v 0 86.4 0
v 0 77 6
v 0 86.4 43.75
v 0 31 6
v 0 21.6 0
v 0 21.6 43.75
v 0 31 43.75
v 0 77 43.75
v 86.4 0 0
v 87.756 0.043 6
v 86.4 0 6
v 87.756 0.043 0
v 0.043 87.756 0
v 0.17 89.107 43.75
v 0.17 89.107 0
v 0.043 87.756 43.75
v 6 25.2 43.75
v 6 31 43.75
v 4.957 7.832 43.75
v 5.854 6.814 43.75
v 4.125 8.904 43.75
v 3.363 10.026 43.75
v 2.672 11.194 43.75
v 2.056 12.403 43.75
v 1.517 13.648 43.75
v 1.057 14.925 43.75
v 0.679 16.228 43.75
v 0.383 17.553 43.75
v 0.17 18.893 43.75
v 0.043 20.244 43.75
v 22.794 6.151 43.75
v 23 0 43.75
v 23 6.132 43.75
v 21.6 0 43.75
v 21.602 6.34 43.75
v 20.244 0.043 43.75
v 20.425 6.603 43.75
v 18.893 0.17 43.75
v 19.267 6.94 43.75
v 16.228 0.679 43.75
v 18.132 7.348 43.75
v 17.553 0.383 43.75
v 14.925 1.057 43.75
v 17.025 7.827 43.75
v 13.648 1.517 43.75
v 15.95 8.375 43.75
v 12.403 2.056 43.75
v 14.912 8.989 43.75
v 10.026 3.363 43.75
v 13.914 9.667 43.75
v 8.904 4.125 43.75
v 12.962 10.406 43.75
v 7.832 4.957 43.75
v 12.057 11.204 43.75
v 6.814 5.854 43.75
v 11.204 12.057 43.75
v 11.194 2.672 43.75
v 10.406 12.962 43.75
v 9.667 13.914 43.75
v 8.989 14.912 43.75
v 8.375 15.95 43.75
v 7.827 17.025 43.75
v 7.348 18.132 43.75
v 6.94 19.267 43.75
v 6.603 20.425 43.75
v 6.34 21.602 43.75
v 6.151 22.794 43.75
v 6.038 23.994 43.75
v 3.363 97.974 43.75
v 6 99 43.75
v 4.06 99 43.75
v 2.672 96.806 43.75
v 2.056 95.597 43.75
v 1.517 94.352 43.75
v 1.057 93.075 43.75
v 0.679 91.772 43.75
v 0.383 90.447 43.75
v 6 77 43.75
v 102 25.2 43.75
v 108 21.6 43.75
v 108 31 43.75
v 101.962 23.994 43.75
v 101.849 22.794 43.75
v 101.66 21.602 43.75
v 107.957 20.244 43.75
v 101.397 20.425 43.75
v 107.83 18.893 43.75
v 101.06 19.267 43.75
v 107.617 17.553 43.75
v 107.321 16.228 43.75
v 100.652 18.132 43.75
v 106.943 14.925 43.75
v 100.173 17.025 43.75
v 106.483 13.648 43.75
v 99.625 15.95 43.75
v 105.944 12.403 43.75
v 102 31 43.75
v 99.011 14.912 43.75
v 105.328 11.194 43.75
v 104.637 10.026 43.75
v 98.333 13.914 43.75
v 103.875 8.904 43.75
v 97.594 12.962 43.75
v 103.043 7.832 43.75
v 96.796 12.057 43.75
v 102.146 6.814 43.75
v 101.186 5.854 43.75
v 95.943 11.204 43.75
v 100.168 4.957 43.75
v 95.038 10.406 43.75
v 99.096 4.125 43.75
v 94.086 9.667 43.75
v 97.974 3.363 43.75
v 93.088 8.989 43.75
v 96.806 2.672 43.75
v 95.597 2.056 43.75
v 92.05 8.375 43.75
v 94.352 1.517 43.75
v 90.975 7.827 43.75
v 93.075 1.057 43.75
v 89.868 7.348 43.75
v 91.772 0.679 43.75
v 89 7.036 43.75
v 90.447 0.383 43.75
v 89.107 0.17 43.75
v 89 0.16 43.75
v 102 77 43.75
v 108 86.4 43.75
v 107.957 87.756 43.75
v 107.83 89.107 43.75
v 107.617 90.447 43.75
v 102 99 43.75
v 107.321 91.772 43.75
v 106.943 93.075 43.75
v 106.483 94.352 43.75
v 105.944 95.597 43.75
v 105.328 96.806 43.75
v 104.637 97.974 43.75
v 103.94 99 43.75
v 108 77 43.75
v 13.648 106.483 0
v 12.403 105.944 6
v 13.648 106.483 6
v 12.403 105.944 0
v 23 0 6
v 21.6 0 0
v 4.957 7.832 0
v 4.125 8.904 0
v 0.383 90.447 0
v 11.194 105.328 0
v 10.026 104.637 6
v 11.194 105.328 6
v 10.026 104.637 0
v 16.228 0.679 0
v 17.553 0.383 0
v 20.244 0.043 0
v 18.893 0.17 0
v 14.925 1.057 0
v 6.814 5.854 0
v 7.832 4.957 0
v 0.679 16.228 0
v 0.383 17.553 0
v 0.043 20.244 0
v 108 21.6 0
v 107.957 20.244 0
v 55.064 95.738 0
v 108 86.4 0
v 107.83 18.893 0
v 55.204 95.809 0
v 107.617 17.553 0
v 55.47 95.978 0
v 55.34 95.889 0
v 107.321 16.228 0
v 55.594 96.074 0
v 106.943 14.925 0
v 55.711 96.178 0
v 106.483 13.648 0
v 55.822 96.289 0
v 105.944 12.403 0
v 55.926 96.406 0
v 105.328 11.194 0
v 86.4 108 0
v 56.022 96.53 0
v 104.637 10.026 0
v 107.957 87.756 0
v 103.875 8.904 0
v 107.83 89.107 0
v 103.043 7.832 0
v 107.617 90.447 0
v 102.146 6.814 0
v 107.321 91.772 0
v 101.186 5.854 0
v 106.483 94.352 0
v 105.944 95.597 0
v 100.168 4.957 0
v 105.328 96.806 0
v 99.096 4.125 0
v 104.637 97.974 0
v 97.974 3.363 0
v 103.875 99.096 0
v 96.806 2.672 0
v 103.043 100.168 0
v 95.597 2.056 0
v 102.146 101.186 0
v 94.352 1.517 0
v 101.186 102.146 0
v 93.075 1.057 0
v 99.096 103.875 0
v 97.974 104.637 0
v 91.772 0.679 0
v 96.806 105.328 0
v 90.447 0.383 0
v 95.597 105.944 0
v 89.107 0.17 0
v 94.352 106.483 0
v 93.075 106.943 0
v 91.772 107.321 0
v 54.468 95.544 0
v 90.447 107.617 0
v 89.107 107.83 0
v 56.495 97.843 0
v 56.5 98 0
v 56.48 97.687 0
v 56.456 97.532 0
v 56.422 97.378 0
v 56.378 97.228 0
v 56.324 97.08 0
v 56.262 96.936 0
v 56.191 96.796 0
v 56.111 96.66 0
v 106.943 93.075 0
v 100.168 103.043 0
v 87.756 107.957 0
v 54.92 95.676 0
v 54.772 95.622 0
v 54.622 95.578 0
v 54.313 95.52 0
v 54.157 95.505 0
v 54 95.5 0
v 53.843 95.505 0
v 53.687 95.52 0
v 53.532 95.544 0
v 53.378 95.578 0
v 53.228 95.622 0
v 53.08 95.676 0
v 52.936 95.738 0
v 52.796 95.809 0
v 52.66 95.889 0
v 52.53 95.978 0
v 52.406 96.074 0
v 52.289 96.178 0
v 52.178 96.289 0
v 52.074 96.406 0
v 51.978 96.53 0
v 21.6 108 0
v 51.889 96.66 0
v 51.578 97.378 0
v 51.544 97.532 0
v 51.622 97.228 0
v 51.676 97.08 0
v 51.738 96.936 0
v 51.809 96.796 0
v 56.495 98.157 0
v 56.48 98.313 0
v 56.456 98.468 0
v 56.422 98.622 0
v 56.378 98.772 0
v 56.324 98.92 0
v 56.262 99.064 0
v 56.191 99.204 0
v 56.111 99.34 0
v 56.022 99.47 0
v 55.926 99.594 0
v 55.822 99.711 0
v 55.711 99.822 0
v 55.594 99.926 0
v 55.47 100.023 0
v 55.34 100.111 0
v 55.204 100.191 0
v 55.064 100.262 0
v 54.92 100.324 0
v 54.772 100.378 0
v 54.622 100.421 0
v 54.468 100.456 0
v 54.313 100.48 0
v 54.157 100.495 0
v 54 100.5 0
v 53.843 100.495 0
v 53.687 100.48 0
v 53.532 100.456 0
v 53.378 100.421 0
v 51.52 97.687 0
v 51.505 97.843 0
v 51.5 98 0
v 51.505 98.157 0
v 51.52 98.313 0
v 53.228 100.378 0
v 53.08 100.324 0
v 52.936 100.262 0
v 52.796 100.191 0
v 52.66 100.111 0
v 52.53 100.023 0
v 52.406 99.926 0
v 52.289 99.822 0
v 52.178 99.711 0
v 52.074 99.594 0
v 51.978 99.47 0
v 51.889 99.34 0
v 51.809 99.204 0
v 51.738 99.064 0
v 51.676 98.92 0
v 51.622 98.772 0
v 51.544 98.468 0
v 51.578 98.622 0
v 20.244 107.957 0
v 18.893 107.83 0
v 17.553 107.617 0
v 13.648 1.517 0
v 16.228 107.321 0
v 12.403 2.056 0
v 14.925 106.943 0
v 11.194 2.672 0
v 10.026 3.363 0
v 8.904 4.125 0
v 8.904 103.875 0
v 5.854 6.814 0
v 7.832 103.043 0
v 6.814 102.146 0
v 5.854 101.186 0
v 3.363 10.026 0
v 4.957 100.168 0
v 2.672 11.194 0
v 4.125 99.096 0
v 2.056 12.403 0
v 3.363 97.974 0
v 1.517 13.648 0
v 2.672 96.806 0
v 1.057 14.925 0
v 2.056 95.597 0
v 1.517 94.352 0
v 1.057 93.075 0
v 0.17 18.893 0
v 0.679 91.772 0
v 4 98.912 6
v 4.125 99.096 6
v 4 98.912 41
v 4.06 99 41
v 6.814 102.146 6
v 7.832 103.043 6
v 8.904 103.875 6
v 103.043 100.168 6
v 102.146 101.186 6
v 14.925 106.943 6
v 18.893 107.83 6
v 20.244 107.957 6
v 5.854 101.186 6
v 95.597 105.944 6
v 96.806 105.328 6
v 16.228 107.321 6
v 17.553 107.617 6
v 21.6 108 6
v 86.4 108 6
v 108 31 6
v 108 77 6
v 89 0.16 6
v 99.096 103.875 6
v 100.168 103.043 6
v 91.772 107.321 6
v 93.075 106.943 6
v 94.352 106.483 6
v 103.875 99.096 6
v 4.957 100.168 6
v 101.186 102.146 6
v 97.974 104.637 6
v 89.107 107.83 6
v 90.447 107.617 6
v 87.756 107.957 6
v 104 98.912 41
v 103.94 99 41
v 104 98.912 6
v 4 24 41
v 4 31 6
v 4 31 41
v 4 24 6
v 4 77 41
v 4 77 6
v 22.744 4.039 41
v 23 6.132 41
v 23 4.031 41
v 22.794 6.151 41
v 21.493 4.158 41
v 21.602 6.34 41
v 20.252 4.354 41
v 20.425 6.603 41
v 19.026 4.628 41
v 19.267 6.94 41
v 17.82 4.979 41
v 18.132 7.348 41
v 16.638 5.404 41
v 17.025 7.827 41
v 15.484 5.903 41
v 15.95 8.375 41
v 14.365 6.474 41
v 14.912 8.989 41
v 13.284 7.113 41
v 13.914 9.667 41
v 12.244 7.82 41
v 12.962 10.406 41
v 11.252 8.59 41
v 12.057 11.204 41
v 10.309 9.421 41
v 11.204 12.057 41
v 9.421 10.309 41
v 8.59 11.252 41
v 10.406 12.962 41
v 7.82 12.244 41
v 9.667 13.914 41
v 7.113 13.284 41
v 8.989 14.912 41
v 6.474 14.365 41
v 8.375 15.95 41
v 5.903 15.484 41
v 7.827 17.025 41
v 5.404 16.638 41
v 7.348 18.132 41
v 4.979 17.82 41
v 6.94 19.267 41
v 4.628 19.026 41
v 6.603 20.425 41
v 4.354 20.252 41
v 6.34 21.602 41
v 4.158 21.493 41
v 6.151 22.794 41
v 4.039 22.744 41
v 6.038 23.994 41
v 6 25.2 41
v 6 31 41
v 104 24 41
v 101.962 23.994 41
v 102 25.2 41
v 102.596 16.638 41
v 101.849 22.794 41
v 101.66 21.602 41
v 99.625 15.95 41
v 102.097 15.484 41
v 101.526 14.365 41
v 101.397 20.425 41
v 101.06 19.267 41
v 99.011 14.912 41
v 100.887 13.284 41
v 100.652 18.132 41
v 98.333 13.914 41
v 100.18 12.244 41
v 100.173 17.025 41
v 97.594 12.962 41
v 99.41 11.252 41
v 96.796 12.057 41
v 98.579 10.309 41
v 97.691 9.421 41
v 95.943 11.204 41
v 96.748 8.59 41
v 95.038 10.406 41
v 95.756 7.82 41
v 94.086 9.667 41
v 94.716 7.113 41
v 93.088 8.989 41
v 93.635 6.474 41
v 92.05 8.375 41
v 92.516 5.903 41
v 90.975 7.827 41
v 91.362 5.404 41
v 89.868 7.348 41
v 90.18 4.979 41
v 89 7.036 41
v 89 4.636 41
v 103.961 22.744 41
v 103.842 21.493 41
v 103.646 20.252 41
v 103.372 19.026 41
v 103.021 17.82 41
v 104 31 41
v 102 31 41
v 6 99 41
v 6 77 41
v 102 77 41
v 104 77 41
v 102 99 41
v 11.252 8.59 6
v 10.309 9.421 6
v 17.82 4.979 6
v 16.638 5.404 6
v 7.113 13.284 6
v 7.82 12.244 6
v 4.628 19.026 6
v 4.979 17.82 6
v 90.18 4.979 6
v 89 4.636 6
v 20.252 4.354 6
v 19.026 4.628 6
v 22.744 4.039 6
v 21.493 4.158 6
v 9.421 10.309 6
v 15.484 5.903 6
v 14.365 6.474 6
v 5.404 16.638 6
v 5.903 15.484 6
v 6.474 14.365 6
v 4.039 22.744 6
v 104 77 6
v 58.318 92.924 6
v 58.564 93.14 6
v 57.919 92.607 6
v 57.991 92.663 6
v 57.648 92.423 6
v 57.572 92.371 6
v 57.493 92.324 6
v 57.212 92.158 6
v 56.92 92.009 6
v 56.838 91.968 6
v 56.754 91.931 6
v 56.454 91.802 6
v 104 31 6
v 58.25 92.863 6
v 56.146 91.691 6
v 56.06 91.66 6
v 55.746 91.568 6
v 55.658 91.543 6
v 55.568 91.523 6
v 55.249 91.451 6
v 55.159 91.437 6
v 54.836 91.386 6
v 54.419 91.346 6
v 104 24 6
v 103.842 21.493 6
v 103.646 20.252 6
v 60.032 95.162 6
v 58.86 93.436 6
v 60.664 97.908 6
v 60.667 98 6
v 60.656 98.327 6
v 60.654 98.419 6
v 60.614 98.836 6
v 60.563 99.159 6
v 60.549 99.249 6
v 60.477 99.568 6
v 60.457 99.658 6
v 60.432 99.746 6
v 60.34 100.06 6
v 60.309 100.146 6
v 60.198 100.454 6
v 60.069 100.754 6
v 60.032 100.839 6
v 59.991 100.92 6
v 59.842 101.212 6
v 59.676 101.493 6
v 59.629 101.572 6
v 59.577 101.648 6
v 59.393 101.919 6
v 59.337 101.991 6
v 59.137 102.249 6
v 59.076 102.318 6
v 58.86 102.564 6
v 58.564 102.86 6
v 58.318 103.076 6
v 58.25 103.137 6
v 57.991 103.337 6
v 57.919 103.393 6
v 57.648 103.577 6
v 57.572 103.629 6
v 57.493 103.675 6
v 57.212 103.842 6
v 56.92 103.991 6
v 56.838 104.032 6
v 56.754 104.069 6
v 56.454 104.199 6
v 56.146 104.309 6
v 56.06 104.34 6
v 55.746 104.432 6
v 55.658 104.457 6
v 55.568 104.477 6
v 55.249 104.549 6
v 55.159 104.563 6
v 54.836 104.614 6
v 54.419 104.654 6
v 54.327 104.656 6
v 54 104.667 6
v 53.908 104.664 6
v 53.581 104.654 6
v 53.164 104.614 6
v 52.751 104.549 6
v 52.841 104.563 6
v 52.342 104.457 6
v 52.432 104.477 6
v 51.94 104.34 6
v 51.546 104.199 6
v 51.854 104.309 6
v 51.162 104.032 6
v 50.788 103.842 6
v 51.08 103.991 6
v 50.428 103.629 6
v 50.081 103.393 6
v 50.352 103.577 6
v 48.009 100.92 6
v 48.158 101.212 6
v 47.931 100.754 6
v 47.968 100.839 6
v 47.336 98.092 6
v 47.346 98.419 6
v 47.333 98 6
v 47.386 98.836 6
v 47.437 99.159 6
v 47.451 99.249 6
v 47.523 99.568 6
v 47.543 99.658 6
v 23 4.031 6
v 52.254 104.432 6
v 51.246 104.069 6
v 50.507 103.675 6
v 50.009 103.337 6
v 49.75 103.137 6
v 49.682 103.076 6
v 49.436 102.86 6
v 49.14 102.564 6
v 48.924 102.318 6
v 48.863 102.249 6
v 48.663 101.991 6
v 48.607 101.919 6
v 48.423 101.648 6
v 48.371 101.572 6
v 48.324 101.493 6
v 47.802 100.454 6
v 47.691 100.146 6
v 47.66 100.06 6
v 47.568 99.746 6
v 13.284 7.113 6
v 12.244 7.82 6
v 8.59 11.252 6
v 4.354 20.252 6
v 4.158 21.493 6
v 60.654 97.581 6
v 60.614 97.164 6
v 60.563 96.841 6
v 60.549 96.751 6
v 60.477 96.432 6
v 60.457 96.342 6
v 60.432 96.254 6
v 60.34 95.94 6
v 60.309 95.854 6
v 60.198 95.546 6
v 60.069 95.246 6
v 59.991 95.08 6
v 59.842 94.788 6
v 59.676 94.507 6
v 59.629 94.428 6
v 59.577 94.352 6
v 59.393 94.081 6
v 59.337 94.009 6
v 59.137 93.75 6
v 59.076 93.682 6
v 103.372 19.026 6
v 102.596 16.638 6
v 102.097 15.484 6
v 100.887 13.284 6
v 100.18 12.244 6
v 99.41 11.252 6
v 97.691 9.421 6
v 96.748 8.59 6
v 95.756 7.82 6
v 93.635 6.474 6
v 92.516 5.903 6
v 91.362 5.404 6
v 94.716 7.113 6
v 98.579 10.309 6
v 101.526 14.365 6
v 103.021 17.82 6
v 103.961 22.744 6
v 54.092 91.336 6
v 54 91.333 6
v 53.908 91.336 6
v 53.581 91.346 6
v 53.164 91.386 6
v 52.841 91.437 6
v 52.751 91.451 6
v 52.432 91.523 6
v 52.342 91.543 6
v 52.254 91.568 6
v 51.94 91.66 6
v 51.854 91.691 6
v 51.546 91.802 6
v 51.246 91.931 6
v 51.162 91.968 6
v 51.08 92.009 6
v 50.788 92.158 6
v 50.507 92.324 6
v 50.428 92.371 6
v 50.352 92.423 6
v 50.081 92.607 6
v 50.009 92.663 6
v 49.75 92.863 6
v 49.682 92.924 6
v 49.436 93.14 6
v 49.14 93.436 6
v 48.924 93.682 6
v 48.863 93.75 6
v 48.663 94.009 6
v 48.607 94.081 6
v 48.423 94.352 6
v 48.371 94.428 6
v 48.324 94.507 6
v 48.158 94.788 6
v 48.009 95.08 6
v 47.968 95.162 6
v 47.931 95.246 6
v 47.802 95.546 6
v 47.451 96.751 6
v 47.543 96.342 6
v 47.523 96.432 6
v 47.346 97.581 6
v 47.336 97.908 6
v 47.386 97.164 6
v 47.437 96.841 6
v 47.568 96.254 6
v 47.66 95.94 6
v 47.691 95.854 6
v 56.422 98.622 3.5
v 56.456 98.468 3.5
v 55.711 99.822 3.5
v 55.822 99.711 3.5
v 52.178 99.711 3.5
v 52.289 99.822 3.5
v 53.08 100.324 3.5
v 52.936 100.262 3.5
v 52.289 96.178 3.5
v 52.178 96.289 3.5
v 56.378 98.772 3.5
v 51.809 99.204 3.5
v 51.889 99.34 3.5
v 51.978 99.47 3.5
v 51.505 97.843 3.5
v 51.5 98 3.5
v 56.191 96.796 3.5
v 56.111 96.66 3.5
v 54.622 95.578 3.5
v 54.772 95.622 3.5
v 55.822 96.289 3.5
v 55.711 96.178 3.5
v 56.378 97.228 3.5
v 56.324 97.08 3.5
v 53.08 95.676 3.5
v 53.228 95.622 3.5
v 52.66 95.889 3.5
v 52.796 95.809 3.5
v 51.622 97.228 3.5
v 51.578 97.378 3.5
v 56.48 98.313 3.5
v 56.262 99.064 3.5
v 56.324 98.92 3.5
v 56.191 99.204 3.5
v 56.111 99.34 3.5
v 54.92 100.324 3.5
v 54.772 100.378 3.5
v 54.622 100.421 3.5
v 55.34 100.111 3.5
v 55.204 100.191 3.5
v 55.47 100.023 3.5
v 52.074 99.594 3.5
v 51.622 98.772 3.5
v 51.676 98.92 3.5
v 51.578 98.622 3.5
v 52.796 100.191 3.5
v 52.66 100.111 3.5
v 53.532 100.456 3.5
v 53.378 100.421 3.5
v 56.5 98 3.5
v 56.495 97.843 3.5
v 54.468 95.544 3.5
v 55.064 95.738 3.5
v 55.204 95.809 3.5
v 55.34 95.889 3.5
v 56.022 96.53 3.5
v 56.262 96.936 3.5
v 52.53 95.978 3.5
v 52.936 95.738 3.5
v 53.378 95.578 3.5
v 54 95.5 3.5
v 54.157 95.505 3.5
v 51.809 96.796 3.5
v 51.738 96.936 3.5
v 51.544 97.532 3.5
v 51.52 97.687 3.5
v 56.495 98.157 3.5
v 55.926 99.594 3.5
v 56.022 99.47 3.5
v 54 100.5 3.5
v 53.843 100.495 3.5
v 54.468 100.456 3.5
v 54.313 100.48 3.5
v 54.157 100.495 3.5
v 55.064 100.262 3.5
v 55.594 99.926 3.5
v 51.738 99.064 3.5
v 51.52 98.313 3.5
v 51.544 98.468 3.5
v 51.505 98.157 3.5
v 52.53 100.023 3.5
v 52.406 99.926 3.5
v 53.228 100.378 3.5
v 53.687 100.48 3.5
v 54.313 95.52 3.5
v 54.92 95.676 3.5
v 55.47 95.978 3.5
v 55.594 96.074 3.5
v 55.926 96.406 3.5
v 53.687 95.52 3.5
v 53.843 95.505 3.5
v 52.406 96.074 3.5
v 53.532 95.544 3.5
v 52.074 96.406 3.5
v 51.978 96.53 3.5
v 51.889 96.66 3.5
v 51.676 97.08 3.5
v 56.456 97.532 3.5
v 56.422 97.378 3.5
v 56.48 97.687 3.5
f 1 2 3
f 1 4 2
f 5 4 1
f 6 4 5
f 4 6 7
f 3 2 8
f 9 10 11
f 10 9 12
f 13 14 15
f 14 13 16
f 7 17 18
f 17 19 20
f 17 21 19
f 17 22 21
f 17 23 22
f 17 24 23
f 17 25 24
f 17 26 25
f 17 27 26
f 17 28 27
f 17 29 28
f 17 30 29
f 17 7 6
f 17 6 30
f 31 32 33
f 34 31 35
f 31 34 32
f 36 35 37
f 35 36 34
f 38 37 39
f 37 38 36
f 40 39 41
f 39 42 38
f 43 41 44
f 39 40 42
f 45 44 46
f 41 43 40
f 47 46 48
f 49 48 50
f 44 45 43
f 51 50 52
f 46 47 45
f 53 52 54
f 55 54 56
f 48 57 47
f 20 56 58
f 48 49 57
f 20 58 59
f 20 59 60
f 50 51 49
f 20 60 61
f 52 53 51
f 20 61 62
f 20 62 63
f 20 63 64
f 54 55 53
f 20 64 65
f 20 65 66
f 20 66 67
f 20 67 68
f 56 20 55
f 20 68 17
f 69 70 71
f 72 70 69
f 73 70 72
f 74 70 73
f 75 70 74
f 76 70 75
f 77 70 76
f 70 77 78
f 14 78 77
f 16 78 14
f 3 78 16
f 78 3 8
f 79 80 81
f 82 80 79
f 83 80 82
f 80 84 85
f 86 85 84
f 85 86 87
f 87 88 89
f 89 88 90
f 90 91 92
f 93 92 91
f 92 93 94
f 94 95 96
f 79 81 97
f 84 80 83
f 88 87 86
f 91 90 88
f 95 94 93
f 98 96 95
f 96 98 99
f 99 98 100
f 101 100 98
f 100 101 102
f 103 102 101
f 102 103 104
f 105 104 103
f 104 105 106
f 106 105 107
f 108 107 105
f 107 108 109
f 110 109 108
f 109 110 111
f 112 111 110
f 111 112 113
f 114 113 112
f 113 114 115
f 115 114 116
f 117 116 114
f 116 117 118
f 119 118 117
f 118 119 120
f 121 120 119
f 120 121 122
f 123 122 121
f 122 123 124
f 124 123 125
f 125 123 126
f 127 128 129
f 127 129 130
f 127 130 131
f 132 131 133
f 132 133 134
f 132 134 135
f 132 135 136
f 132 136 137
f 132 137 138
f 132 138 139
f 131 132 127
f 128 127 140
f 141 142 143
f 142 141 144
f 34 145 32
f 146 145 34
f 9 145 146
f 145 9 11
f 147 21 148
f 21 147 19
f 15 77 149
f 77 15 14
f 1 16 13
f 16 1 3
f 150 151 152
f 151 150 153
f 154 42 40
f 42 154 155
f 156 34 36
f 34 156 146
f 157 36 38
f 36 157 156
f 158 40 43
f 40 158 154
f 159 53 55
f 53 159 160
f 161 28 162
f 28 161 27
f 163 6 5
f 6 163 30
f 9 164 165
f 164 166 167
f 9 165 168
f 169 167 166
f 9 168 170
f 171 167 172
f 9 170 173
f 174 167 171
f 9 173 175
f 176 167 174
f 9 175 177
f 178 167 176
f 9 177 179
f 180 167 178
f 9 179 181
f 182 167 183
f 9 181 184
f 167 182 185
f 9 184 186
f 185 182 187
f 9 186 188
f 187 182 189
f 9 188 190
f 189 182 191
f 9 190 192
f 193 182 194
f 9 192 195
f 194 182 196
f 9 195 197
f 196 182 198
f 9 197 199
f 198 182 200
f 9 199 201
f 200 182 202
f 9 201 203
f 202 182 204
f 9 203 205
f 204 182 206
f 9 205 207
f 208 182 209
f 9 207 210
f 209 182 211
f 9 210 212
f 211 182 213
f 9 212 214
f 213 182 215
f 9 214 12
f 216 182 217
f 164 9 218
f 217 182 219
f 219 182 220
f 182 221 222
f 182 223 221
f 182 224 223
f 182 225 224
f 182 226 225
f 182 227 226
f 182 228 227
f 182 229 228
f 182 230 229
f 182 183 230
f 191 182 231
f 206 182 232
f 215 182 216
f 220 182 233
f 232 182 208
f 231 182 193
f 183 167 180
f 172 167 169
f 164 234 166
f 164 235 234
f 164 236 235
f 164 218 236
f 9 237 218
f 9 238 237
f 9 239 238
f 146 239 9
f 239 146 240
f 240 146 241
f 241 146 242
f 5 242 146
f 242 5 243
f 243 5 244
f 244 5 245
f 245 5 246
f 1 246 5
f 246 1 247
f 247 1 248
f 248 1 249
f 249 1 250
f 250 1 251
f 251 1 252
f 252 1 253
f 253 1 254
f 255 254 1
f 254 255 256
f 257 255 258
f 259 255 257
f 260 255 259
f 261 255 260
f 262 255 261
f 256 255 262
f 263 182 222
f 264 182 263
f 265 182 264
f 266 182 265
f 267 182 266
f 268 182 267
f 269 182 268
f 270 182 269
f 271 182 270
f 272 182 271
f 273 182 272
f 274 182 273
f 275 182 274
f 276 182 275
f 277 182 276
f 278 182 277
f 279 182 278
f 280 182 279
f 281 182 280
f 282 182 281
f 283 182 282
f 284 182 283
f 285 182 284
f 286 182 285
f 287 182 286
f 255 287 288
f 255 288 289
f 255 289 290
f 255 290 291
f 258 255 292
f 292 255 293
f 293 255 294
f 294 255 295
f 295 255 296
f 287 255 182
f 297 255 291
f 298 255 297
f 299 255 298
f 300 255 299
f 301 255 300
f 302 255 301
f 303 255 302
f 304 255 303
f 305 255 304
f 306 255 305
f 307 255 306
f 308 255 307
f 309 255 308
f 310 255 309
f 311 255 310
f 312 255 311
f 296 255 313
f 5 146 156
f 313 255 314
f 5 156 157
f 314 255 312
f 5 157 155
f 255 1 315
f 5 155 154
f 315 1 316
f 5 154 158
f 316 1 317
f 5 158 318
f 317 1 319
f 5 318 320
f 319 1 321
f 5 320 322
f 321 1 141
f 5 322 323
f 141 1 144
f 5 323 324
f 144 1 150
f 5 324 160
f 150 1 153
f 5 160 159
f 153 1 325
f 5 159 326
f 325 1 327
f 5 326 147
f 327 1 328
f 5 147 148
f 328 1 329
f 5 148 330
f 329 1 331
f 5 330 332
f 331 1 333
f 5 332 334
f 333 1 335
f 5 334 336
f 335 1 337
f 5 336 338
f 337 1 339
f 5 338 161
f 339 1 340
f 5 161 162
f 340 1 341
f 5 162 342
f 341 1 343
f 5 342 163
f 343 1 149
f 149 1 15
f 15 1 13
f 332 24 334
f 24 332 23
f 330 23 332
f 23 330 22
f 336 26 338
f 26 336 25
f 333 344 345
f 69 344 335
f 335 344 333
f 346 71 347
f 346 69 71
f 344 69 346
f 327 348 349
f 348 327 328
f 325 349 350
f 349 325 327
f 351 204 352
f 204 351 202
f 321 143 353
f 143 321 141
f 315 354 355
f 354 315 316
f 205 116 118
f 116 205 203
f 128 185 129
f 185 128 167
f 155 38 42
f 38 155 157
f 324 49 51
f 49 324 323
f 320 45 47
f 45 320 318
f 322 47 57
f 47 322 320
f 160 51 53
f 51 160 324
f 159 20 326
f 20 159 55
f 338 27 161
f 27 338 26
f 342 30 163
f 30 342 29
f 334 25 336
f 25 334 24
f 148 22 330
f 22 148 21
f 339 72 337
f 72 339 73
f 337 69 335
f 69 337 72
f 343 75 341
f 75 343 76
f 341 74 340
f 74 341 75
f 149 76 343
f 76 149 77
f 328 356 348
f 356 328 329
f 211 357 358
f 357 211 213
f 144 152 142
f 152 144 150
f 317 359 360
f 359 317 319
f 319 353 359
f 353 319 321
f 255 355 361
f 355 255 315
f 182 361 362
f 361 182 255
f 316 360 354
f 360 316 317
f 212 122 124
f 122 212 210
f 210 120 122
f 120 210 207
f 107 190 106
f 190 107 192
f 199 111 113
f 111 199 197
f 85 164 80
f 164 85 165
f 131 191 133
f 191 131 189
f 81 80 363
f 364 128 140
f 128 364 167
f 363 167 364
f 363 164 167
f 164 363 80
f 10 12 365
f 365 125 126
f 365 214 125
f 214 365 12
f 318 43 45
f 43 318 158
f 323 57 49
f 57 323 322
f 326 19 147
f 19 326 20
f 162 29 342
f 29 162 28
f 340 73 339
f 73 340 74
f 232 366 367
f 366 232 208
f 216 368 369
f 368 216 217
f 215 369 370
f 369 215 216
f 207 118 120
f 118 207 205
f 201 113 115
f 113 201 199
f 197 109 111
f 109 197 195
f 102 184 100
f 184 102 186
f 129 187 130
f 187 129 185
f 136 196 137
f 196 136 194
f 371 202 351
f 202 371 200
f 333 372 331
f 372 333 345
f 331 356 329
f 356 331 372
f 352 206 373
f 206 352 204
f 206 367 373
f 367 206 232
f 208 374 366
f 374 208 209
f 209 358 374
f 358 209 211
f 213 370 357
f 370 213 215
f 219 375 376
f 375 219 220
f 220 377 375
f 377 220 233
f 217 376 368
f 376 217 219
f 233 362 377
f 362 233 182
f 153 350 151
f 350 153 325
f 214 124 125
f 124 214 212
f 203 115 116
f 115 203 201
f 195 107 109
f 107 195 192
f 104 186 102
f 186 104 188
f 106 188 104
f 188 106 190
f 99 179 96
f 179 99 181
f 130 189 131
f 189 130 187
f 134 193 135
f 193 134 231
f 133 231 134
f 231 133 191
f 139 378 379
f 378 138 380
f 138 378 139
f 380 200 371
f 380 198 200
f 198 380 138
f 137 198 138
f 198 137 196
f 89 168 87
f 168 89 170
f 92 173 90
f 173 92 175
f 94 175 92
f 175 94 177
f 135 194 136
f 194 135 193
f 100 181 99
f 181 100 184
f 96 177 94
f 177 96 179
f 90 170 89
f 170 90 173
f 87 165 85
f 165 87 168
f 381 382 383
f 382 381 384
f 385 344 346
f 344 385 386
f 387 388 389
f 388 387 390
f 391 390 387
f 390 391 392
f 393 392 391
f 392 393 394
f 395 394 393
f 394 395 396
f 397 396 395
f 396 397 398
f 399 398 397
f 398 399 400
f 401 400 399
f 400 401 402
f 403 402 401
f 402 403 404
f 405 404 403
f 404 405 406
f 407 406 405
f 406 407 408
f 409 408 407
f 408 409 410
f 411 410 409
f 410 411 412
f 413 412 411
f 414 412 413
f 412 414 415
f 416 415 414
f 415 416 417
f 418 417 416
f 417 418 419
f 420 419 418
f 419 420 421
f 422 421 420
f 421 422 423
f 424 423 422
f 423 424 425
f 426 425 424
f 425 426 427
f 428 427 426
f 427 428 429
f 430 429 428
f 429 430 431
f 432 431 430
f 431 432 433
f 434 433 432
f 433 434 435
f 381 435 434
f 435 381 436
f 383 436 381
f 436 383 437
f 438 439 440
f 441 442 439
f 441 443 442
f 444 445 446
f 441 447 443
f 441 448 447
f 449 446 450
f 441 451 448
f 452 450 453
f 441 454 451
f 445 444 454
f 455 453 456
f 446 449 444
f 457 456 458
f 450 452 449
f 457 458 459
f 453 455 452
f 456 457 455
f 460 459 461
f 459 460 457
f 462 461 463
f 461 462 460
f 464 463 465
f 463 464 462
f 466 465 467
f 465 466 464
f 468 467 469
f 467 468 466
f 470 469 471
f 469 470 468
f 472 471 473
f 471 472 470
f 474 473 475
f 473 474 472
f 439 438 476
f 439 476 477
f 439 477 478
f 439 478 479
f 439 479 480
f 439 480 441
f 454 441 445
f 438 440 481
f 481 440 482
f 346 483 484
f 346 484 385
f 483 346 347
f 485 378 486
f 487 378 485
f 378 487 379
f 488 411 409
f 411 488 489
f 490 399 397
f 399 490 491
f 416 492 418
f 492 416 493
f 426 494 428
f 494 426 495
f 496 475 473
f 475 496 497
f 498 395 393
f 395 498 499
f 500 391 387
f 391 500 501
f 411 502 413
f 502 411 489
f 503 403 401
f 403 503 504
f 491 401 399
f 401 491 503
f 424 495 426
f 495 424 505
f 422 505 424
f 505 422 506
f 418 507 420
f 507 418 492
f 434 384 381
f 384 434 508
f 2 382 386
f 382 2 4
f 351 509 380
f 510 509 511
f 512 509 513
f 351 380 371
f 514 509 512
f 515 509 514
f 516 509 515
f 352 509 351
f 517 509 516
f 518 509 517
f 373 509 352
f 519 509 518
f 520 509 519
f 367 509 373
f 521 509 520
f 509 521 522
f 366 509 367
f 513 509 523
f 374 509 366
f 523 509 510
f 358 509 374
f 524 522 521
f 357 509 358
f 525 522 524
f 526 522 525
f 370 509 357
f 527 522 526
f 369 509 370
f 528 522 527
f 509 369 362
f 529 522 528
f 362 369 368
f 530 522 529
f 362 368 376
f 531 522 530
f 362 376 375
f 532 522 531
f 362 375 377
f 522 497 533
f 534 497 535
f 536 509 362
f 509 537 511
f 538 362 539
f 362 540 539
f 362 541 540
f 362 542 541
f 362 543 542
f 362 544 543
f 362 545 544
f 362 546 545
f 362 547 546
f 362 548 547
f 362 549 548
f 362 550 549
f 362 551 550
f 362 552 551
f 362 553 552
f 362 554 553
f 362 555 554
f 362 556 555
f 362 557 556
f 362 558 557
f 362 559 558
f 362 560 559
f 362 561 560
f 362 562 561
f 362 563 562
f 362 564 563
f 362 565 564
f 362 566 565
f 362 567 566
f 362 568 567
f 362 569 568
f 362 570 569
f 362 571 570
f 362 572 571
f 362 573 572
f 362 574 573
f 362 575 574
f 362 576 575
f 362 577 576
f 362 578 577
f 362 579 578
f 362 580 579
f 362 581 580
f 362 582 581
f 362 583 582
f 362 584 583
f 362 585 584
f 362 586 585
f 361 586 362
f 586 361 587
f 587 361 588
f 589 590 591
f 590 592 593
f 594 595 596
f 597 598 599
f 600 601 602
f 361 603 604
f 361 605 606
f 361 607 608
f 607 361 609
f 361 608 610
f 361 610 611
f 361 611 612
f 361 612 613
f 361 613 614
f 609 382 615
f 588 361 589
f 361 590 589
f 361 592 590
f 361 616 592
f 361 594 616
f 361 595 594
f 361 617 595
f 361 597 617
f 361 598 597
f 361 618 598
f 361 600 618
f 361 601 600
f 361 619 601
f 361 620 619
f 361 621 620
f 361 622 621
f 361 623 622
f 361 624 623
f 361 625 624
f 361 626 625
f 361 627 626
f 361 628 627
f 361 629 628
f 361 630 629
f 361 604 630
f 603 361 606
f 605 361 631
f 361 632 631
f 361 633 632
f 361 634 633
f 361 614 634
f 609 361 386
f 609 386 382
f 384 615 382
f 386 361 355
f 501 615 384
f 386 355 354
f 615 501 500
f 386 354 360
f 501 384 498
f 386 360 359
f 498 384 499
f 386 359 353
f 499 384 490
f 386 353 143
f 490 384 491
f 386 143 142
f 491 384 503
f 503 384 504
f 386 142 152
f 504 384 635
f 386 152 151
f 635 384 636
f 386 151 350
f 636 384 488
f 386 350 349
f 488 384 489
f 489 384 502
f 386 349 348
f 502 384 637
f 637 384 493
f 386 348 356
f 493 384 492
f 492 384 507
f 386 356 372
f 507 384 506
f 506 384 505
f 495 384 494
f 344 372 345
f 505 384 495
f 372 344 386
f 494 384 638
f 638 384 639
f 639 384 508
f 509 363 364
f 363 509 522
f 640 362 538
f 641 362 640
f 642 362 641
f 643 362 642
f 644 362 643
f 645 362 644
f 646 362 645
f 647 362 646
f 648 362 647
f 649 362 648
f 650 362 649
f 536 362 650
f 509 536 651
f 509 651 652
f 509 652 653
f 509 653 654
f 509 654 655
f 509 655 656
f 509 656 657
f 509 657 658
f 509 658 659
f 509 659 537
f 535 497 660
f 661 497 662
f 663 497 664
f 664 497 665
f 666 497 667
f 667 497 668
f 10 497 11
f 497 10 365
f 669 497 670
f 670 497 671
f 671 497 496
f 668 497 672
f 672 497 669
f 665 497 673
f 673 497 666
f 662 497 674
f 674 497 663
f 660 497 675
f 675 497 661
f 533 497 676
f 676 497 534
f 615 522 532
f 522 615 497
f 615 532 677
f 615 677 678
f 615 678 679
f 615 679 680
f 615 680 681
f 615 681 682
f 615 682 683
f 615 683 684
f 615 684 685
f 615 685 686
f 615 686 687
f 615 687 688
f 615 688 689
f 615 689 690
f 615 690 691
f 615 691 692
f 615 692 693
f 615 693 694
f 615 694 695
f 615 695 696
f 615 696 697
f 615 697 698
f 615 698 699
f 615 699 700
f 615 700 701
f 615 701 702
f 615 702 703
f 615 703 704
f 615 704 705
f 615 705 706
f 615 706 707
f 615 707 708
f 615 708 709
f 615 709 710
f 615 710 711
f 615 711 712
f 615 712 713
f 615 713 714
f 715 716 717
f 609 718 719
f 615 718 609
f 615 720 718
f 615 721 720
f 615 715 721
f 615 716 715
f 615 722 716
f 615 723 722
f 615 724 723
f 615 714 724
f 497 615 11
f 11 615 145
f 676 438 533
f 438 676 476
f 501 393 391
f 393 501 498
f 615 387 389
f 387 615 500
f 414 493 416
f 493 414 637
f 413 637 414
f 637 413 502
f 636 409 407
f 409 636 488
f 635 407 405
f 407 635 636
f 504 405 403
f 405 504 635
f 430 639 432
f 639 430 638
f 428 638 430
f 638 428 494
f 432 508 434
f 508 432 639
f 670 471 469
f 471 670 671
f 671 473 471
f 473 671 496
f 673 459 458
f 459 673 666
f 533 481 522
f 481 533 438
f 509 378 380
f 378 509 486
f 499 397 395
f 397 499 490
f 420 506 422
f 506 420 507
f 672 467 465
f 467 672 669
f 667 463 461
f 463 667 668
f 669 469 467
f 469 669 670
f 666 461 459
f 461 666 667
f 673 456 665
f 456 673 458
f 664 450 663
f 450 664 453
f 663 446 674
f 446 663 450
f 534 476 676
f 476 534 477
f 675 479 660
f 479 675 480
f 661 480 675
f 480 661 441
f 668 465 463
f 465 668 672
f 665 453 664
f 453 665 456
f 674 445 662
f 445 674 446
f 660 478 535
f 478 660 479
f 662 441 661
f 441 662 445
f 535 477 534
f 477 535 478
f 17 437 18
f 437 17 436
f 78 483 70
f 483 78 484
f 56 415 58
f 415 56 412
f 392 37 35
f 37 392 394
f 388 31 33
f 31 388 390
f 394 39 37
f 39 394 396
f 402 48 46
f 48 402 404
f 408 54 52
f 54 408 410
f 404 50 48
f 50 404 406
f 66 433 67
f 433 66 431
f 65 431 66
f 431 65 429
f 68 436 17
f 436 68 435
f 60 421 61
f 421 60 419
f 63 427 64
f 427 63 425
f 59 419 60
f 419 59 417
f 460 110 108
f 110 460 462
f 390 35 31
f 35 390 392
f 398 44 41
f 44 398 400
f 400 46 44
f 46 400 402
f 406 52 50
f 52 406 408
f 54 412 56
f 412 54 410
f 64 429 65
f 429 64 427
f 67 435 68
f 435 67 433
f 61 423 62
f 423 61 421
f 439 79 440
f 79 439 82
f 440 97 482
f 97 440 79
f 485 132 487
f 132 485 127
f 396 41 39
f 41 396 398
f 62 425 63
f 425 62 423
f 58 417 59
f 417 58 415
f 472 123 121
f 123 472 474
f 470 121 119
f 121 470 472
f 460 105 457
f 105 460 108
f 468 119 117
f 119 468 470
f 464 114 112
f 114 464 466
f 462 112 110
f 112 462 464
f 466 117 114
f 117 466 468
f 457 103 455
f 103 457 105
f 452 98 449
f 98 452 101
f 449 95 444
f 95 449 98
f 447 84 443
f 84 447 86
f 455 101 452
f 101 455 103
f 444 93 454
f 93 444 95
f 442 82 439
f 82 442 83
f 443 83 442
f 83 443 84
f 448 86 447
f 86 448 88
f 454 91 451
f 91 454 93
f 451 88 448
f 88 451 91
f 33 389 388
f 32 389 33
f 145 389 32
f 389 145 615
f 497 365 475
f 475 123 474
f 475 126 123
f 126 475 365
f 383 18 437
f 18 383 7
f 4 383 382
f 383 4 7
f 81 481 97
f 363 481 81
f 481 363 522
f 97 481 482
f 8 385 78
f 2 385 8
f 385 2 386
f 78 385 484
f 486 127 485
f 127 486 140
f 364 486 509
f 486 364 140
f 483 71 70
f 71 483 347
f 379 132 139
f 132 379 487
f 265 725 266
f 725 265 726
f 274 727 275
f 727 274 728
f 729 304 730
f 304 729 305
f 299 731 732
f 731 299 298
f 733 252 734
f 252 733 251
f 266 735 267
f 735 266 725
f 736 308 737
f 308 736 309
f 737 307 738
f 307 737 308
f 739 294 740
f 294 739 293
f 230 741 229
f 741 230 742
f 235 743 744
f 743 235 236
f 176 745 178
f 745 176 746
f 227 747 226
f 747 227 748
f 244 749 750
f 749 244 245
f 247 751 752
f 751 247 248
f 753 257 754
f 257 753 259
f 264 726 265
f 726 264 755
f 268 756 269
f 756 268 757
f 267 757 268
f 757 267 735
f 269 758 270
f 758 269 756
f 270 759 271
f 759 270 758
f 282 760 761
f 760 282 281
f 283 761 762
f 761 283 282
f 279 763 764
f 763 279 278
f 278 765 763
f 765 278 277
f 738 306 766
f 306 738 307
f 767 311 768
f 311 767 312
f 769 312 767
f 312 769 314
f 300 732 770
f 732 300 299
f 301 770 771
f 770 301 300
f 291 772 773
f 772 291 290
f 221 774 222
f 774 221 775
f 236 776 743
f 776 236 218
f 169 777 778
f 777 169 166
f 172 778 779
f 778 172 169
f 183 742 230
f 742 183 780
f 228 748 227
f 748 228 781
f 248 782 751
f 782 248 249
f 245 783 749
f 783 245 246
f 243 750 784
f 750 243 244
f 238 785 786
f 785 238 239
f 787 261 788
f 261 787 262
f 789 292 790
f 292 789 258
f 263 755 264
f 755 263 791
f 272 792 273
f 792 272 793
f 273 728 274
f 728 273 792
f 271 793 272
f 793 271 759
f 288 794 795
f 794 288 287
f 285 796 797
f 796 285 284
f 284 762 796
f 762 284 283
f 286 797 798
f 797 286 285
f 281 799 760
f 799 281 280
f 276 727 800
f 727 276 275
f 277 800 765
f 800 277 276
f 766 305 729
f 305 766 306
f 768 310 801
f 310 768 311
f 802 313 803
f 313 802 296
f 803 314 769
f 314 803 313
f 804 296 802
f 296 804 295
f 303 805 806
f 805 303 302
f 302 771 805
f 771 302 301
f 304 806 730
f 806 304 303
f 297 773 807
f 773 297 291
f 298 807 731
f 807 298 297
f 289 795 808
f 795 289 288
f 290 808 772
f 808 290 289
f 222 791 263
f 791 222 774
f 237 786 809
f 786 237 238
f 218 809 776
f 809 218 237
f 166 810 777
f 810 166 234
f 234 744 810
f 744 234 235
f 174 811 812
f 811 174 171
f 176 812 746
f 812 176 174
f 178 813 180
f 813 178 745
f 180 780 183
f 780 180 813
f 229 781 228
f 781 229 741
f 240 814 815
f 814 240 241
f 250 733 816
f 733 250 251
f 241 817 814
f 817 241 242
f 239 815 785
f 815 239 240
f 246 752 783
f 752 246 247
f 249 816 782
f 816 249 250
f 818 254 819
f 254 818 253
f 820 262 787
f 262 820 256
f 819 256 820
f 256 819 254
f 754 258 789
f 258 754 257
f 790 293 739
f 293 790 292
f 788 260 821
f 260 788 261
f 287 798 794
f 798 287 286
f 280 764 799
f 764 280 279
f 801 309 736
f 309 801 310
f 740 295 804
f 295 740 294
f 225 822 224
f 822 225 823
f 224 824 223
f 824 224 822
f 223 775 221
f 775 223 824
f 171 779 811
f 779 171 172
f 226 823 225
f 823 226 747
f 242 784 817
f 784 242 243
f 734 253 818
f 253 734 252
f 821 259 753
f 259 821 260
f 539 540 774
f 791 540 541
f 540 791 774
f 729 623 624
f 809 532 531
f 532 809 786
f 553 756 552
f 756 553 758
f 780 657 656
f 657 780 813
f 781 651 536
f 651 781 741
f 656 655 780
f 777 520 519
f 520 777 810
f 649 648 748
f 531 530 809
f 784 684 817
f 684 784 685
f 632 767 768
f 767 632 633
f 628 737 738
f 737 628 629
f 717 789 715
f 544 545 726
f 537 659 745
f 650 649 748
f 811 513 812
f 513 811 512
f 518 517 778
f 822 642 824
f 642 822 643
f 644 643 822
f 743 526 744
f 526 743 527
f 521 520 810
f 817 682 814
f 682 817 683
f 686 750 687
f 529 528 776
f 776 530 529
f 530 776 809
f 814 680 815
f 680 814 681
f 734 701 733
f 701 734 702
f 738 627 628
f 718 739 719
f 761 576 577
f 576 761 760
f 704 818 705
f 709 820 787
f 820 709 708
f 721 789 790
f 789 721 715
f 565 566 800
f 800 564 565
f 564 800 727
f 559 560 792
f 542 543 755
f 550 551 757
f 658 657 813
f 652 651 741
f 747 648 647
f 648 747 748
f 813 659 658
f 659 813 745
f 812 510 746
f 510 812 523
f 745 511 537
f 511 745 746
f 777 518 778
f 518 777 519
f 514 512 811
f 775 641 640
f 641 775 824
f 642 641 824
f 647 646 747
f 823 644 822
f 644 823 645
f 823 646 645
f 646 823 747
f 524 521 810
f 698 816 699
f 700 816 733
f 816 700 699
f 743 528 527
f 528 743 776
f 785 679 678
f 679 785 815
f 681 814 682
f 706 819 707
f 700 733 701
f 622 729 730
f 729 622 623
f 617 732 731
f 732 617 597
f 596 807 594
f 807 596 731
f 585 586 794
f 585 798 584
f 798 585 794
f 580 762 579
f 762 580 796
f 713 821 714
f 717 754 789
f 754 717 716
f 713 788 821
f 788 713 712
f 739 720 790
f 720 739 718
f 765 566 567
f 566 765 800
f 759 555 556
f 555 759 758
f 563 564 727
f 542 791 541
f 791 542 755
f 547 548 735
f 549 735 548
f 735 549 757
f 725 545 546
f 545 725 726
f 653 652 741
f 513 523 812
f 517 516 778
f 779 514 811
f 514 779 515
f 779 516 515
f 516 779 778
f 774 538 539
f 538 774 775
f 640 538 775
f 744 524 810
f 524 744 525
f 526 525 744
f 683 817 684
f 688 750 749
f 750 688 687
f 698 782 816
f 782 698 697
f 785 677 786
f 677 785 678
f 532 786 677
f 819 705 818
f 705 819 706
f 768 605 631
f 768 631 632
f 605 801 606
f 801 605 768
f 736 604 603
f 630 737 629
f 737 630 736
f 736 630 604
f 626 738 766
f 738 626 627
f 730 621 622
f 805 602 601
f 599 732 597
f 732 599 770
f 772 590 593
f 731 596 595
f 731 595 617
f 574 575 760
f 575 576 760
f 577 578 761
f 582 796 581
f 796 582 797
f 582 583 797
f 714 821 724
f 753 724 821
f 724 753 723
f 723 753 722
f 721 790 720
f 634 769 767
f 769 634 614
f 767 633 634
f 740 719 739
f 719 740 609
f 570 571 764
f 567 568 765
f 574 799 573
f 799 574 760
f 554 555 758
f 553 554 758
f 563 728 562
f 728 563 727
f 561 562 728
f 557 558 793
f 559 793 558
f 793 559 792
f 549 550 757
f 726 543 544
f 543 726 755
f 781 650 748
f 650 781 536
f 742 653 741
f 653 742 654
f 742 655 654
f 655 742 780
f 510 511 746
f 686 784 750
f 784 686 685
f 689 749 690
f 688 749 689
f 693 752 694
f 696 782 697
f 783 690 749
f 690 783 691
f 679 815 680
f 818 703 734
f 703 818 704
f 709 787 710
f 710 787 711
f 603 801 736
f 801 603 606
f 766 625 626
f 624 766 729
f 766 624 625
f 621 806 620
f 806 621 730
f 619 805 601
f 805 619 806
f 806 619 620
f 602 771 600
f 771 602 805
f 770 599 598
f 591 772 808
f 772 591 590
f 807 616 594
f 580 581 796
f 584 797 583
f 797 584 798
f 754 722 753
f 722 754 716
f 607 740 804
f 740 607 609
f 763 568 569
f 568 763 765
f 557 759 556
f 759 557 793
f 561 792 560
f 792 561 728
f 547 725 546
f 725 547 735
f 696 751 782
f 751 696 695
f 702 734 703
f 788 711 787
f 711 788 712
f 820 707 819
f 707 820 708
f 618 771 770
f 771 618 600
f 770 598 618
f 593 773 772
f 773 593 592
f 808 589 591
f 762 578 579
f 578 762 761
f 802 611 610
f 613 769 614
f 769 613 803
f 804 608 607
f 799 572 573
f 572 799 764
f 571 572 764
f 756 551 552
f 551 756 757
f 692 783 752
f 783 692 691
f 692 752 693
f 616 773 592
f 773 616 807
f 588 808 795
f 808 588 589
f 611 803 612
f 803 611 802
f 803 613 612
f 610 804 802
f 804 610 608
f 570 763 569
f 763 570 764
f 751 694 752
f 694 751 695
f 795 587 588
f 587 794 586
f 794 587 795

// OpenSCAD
$fn = 100;

module AppleTV4K(){
  // 99 mm square, 35 tall
  difference(){
    union(){
      hull(){
        translate([20, 20, 0]) cylinder(h = 35, r = 20);
        translate([80, 20, 0]) cylinder(h = 35, r = 20);
        translate([20, 80, 0]) cylinder(h = 35, r = 20);
        translate([80, 80, 0]) cylinder(h = 35, r = 20);        
      }
    }
  }
}

module AppleTV4KWallMount(){
  difference(){
    union(){
      scale([1.08, 1.08, 1.25]){
        AppleTV4K();
      }
    }
    
    translate([4, 4, 6]) AppleTV4K();
    translate([6, 6, 20]) scale([.96, .96, .96]) AppleTV4K();
    
    translate([23, -10, 6]) cube([66, 120, 40]);
    translate([-10, 31, 6]) cube([120, 46, 40]);
    
    translate([4, 75, 6]) cube([100, 100, 35]);
    translate([6, 50, 6]) cube([96, 100, 40]);
    translate([4, 99, 6]) cube([100, 100, 40]);
    
    translate([54, 98, -10]) cylinder(h = 30, d = 5);
    translate([54, 98, 3.5]) cylinder(h = 6, d1 = 5, d2 = 25);
  }
}


AppleTV4KWallMount();
